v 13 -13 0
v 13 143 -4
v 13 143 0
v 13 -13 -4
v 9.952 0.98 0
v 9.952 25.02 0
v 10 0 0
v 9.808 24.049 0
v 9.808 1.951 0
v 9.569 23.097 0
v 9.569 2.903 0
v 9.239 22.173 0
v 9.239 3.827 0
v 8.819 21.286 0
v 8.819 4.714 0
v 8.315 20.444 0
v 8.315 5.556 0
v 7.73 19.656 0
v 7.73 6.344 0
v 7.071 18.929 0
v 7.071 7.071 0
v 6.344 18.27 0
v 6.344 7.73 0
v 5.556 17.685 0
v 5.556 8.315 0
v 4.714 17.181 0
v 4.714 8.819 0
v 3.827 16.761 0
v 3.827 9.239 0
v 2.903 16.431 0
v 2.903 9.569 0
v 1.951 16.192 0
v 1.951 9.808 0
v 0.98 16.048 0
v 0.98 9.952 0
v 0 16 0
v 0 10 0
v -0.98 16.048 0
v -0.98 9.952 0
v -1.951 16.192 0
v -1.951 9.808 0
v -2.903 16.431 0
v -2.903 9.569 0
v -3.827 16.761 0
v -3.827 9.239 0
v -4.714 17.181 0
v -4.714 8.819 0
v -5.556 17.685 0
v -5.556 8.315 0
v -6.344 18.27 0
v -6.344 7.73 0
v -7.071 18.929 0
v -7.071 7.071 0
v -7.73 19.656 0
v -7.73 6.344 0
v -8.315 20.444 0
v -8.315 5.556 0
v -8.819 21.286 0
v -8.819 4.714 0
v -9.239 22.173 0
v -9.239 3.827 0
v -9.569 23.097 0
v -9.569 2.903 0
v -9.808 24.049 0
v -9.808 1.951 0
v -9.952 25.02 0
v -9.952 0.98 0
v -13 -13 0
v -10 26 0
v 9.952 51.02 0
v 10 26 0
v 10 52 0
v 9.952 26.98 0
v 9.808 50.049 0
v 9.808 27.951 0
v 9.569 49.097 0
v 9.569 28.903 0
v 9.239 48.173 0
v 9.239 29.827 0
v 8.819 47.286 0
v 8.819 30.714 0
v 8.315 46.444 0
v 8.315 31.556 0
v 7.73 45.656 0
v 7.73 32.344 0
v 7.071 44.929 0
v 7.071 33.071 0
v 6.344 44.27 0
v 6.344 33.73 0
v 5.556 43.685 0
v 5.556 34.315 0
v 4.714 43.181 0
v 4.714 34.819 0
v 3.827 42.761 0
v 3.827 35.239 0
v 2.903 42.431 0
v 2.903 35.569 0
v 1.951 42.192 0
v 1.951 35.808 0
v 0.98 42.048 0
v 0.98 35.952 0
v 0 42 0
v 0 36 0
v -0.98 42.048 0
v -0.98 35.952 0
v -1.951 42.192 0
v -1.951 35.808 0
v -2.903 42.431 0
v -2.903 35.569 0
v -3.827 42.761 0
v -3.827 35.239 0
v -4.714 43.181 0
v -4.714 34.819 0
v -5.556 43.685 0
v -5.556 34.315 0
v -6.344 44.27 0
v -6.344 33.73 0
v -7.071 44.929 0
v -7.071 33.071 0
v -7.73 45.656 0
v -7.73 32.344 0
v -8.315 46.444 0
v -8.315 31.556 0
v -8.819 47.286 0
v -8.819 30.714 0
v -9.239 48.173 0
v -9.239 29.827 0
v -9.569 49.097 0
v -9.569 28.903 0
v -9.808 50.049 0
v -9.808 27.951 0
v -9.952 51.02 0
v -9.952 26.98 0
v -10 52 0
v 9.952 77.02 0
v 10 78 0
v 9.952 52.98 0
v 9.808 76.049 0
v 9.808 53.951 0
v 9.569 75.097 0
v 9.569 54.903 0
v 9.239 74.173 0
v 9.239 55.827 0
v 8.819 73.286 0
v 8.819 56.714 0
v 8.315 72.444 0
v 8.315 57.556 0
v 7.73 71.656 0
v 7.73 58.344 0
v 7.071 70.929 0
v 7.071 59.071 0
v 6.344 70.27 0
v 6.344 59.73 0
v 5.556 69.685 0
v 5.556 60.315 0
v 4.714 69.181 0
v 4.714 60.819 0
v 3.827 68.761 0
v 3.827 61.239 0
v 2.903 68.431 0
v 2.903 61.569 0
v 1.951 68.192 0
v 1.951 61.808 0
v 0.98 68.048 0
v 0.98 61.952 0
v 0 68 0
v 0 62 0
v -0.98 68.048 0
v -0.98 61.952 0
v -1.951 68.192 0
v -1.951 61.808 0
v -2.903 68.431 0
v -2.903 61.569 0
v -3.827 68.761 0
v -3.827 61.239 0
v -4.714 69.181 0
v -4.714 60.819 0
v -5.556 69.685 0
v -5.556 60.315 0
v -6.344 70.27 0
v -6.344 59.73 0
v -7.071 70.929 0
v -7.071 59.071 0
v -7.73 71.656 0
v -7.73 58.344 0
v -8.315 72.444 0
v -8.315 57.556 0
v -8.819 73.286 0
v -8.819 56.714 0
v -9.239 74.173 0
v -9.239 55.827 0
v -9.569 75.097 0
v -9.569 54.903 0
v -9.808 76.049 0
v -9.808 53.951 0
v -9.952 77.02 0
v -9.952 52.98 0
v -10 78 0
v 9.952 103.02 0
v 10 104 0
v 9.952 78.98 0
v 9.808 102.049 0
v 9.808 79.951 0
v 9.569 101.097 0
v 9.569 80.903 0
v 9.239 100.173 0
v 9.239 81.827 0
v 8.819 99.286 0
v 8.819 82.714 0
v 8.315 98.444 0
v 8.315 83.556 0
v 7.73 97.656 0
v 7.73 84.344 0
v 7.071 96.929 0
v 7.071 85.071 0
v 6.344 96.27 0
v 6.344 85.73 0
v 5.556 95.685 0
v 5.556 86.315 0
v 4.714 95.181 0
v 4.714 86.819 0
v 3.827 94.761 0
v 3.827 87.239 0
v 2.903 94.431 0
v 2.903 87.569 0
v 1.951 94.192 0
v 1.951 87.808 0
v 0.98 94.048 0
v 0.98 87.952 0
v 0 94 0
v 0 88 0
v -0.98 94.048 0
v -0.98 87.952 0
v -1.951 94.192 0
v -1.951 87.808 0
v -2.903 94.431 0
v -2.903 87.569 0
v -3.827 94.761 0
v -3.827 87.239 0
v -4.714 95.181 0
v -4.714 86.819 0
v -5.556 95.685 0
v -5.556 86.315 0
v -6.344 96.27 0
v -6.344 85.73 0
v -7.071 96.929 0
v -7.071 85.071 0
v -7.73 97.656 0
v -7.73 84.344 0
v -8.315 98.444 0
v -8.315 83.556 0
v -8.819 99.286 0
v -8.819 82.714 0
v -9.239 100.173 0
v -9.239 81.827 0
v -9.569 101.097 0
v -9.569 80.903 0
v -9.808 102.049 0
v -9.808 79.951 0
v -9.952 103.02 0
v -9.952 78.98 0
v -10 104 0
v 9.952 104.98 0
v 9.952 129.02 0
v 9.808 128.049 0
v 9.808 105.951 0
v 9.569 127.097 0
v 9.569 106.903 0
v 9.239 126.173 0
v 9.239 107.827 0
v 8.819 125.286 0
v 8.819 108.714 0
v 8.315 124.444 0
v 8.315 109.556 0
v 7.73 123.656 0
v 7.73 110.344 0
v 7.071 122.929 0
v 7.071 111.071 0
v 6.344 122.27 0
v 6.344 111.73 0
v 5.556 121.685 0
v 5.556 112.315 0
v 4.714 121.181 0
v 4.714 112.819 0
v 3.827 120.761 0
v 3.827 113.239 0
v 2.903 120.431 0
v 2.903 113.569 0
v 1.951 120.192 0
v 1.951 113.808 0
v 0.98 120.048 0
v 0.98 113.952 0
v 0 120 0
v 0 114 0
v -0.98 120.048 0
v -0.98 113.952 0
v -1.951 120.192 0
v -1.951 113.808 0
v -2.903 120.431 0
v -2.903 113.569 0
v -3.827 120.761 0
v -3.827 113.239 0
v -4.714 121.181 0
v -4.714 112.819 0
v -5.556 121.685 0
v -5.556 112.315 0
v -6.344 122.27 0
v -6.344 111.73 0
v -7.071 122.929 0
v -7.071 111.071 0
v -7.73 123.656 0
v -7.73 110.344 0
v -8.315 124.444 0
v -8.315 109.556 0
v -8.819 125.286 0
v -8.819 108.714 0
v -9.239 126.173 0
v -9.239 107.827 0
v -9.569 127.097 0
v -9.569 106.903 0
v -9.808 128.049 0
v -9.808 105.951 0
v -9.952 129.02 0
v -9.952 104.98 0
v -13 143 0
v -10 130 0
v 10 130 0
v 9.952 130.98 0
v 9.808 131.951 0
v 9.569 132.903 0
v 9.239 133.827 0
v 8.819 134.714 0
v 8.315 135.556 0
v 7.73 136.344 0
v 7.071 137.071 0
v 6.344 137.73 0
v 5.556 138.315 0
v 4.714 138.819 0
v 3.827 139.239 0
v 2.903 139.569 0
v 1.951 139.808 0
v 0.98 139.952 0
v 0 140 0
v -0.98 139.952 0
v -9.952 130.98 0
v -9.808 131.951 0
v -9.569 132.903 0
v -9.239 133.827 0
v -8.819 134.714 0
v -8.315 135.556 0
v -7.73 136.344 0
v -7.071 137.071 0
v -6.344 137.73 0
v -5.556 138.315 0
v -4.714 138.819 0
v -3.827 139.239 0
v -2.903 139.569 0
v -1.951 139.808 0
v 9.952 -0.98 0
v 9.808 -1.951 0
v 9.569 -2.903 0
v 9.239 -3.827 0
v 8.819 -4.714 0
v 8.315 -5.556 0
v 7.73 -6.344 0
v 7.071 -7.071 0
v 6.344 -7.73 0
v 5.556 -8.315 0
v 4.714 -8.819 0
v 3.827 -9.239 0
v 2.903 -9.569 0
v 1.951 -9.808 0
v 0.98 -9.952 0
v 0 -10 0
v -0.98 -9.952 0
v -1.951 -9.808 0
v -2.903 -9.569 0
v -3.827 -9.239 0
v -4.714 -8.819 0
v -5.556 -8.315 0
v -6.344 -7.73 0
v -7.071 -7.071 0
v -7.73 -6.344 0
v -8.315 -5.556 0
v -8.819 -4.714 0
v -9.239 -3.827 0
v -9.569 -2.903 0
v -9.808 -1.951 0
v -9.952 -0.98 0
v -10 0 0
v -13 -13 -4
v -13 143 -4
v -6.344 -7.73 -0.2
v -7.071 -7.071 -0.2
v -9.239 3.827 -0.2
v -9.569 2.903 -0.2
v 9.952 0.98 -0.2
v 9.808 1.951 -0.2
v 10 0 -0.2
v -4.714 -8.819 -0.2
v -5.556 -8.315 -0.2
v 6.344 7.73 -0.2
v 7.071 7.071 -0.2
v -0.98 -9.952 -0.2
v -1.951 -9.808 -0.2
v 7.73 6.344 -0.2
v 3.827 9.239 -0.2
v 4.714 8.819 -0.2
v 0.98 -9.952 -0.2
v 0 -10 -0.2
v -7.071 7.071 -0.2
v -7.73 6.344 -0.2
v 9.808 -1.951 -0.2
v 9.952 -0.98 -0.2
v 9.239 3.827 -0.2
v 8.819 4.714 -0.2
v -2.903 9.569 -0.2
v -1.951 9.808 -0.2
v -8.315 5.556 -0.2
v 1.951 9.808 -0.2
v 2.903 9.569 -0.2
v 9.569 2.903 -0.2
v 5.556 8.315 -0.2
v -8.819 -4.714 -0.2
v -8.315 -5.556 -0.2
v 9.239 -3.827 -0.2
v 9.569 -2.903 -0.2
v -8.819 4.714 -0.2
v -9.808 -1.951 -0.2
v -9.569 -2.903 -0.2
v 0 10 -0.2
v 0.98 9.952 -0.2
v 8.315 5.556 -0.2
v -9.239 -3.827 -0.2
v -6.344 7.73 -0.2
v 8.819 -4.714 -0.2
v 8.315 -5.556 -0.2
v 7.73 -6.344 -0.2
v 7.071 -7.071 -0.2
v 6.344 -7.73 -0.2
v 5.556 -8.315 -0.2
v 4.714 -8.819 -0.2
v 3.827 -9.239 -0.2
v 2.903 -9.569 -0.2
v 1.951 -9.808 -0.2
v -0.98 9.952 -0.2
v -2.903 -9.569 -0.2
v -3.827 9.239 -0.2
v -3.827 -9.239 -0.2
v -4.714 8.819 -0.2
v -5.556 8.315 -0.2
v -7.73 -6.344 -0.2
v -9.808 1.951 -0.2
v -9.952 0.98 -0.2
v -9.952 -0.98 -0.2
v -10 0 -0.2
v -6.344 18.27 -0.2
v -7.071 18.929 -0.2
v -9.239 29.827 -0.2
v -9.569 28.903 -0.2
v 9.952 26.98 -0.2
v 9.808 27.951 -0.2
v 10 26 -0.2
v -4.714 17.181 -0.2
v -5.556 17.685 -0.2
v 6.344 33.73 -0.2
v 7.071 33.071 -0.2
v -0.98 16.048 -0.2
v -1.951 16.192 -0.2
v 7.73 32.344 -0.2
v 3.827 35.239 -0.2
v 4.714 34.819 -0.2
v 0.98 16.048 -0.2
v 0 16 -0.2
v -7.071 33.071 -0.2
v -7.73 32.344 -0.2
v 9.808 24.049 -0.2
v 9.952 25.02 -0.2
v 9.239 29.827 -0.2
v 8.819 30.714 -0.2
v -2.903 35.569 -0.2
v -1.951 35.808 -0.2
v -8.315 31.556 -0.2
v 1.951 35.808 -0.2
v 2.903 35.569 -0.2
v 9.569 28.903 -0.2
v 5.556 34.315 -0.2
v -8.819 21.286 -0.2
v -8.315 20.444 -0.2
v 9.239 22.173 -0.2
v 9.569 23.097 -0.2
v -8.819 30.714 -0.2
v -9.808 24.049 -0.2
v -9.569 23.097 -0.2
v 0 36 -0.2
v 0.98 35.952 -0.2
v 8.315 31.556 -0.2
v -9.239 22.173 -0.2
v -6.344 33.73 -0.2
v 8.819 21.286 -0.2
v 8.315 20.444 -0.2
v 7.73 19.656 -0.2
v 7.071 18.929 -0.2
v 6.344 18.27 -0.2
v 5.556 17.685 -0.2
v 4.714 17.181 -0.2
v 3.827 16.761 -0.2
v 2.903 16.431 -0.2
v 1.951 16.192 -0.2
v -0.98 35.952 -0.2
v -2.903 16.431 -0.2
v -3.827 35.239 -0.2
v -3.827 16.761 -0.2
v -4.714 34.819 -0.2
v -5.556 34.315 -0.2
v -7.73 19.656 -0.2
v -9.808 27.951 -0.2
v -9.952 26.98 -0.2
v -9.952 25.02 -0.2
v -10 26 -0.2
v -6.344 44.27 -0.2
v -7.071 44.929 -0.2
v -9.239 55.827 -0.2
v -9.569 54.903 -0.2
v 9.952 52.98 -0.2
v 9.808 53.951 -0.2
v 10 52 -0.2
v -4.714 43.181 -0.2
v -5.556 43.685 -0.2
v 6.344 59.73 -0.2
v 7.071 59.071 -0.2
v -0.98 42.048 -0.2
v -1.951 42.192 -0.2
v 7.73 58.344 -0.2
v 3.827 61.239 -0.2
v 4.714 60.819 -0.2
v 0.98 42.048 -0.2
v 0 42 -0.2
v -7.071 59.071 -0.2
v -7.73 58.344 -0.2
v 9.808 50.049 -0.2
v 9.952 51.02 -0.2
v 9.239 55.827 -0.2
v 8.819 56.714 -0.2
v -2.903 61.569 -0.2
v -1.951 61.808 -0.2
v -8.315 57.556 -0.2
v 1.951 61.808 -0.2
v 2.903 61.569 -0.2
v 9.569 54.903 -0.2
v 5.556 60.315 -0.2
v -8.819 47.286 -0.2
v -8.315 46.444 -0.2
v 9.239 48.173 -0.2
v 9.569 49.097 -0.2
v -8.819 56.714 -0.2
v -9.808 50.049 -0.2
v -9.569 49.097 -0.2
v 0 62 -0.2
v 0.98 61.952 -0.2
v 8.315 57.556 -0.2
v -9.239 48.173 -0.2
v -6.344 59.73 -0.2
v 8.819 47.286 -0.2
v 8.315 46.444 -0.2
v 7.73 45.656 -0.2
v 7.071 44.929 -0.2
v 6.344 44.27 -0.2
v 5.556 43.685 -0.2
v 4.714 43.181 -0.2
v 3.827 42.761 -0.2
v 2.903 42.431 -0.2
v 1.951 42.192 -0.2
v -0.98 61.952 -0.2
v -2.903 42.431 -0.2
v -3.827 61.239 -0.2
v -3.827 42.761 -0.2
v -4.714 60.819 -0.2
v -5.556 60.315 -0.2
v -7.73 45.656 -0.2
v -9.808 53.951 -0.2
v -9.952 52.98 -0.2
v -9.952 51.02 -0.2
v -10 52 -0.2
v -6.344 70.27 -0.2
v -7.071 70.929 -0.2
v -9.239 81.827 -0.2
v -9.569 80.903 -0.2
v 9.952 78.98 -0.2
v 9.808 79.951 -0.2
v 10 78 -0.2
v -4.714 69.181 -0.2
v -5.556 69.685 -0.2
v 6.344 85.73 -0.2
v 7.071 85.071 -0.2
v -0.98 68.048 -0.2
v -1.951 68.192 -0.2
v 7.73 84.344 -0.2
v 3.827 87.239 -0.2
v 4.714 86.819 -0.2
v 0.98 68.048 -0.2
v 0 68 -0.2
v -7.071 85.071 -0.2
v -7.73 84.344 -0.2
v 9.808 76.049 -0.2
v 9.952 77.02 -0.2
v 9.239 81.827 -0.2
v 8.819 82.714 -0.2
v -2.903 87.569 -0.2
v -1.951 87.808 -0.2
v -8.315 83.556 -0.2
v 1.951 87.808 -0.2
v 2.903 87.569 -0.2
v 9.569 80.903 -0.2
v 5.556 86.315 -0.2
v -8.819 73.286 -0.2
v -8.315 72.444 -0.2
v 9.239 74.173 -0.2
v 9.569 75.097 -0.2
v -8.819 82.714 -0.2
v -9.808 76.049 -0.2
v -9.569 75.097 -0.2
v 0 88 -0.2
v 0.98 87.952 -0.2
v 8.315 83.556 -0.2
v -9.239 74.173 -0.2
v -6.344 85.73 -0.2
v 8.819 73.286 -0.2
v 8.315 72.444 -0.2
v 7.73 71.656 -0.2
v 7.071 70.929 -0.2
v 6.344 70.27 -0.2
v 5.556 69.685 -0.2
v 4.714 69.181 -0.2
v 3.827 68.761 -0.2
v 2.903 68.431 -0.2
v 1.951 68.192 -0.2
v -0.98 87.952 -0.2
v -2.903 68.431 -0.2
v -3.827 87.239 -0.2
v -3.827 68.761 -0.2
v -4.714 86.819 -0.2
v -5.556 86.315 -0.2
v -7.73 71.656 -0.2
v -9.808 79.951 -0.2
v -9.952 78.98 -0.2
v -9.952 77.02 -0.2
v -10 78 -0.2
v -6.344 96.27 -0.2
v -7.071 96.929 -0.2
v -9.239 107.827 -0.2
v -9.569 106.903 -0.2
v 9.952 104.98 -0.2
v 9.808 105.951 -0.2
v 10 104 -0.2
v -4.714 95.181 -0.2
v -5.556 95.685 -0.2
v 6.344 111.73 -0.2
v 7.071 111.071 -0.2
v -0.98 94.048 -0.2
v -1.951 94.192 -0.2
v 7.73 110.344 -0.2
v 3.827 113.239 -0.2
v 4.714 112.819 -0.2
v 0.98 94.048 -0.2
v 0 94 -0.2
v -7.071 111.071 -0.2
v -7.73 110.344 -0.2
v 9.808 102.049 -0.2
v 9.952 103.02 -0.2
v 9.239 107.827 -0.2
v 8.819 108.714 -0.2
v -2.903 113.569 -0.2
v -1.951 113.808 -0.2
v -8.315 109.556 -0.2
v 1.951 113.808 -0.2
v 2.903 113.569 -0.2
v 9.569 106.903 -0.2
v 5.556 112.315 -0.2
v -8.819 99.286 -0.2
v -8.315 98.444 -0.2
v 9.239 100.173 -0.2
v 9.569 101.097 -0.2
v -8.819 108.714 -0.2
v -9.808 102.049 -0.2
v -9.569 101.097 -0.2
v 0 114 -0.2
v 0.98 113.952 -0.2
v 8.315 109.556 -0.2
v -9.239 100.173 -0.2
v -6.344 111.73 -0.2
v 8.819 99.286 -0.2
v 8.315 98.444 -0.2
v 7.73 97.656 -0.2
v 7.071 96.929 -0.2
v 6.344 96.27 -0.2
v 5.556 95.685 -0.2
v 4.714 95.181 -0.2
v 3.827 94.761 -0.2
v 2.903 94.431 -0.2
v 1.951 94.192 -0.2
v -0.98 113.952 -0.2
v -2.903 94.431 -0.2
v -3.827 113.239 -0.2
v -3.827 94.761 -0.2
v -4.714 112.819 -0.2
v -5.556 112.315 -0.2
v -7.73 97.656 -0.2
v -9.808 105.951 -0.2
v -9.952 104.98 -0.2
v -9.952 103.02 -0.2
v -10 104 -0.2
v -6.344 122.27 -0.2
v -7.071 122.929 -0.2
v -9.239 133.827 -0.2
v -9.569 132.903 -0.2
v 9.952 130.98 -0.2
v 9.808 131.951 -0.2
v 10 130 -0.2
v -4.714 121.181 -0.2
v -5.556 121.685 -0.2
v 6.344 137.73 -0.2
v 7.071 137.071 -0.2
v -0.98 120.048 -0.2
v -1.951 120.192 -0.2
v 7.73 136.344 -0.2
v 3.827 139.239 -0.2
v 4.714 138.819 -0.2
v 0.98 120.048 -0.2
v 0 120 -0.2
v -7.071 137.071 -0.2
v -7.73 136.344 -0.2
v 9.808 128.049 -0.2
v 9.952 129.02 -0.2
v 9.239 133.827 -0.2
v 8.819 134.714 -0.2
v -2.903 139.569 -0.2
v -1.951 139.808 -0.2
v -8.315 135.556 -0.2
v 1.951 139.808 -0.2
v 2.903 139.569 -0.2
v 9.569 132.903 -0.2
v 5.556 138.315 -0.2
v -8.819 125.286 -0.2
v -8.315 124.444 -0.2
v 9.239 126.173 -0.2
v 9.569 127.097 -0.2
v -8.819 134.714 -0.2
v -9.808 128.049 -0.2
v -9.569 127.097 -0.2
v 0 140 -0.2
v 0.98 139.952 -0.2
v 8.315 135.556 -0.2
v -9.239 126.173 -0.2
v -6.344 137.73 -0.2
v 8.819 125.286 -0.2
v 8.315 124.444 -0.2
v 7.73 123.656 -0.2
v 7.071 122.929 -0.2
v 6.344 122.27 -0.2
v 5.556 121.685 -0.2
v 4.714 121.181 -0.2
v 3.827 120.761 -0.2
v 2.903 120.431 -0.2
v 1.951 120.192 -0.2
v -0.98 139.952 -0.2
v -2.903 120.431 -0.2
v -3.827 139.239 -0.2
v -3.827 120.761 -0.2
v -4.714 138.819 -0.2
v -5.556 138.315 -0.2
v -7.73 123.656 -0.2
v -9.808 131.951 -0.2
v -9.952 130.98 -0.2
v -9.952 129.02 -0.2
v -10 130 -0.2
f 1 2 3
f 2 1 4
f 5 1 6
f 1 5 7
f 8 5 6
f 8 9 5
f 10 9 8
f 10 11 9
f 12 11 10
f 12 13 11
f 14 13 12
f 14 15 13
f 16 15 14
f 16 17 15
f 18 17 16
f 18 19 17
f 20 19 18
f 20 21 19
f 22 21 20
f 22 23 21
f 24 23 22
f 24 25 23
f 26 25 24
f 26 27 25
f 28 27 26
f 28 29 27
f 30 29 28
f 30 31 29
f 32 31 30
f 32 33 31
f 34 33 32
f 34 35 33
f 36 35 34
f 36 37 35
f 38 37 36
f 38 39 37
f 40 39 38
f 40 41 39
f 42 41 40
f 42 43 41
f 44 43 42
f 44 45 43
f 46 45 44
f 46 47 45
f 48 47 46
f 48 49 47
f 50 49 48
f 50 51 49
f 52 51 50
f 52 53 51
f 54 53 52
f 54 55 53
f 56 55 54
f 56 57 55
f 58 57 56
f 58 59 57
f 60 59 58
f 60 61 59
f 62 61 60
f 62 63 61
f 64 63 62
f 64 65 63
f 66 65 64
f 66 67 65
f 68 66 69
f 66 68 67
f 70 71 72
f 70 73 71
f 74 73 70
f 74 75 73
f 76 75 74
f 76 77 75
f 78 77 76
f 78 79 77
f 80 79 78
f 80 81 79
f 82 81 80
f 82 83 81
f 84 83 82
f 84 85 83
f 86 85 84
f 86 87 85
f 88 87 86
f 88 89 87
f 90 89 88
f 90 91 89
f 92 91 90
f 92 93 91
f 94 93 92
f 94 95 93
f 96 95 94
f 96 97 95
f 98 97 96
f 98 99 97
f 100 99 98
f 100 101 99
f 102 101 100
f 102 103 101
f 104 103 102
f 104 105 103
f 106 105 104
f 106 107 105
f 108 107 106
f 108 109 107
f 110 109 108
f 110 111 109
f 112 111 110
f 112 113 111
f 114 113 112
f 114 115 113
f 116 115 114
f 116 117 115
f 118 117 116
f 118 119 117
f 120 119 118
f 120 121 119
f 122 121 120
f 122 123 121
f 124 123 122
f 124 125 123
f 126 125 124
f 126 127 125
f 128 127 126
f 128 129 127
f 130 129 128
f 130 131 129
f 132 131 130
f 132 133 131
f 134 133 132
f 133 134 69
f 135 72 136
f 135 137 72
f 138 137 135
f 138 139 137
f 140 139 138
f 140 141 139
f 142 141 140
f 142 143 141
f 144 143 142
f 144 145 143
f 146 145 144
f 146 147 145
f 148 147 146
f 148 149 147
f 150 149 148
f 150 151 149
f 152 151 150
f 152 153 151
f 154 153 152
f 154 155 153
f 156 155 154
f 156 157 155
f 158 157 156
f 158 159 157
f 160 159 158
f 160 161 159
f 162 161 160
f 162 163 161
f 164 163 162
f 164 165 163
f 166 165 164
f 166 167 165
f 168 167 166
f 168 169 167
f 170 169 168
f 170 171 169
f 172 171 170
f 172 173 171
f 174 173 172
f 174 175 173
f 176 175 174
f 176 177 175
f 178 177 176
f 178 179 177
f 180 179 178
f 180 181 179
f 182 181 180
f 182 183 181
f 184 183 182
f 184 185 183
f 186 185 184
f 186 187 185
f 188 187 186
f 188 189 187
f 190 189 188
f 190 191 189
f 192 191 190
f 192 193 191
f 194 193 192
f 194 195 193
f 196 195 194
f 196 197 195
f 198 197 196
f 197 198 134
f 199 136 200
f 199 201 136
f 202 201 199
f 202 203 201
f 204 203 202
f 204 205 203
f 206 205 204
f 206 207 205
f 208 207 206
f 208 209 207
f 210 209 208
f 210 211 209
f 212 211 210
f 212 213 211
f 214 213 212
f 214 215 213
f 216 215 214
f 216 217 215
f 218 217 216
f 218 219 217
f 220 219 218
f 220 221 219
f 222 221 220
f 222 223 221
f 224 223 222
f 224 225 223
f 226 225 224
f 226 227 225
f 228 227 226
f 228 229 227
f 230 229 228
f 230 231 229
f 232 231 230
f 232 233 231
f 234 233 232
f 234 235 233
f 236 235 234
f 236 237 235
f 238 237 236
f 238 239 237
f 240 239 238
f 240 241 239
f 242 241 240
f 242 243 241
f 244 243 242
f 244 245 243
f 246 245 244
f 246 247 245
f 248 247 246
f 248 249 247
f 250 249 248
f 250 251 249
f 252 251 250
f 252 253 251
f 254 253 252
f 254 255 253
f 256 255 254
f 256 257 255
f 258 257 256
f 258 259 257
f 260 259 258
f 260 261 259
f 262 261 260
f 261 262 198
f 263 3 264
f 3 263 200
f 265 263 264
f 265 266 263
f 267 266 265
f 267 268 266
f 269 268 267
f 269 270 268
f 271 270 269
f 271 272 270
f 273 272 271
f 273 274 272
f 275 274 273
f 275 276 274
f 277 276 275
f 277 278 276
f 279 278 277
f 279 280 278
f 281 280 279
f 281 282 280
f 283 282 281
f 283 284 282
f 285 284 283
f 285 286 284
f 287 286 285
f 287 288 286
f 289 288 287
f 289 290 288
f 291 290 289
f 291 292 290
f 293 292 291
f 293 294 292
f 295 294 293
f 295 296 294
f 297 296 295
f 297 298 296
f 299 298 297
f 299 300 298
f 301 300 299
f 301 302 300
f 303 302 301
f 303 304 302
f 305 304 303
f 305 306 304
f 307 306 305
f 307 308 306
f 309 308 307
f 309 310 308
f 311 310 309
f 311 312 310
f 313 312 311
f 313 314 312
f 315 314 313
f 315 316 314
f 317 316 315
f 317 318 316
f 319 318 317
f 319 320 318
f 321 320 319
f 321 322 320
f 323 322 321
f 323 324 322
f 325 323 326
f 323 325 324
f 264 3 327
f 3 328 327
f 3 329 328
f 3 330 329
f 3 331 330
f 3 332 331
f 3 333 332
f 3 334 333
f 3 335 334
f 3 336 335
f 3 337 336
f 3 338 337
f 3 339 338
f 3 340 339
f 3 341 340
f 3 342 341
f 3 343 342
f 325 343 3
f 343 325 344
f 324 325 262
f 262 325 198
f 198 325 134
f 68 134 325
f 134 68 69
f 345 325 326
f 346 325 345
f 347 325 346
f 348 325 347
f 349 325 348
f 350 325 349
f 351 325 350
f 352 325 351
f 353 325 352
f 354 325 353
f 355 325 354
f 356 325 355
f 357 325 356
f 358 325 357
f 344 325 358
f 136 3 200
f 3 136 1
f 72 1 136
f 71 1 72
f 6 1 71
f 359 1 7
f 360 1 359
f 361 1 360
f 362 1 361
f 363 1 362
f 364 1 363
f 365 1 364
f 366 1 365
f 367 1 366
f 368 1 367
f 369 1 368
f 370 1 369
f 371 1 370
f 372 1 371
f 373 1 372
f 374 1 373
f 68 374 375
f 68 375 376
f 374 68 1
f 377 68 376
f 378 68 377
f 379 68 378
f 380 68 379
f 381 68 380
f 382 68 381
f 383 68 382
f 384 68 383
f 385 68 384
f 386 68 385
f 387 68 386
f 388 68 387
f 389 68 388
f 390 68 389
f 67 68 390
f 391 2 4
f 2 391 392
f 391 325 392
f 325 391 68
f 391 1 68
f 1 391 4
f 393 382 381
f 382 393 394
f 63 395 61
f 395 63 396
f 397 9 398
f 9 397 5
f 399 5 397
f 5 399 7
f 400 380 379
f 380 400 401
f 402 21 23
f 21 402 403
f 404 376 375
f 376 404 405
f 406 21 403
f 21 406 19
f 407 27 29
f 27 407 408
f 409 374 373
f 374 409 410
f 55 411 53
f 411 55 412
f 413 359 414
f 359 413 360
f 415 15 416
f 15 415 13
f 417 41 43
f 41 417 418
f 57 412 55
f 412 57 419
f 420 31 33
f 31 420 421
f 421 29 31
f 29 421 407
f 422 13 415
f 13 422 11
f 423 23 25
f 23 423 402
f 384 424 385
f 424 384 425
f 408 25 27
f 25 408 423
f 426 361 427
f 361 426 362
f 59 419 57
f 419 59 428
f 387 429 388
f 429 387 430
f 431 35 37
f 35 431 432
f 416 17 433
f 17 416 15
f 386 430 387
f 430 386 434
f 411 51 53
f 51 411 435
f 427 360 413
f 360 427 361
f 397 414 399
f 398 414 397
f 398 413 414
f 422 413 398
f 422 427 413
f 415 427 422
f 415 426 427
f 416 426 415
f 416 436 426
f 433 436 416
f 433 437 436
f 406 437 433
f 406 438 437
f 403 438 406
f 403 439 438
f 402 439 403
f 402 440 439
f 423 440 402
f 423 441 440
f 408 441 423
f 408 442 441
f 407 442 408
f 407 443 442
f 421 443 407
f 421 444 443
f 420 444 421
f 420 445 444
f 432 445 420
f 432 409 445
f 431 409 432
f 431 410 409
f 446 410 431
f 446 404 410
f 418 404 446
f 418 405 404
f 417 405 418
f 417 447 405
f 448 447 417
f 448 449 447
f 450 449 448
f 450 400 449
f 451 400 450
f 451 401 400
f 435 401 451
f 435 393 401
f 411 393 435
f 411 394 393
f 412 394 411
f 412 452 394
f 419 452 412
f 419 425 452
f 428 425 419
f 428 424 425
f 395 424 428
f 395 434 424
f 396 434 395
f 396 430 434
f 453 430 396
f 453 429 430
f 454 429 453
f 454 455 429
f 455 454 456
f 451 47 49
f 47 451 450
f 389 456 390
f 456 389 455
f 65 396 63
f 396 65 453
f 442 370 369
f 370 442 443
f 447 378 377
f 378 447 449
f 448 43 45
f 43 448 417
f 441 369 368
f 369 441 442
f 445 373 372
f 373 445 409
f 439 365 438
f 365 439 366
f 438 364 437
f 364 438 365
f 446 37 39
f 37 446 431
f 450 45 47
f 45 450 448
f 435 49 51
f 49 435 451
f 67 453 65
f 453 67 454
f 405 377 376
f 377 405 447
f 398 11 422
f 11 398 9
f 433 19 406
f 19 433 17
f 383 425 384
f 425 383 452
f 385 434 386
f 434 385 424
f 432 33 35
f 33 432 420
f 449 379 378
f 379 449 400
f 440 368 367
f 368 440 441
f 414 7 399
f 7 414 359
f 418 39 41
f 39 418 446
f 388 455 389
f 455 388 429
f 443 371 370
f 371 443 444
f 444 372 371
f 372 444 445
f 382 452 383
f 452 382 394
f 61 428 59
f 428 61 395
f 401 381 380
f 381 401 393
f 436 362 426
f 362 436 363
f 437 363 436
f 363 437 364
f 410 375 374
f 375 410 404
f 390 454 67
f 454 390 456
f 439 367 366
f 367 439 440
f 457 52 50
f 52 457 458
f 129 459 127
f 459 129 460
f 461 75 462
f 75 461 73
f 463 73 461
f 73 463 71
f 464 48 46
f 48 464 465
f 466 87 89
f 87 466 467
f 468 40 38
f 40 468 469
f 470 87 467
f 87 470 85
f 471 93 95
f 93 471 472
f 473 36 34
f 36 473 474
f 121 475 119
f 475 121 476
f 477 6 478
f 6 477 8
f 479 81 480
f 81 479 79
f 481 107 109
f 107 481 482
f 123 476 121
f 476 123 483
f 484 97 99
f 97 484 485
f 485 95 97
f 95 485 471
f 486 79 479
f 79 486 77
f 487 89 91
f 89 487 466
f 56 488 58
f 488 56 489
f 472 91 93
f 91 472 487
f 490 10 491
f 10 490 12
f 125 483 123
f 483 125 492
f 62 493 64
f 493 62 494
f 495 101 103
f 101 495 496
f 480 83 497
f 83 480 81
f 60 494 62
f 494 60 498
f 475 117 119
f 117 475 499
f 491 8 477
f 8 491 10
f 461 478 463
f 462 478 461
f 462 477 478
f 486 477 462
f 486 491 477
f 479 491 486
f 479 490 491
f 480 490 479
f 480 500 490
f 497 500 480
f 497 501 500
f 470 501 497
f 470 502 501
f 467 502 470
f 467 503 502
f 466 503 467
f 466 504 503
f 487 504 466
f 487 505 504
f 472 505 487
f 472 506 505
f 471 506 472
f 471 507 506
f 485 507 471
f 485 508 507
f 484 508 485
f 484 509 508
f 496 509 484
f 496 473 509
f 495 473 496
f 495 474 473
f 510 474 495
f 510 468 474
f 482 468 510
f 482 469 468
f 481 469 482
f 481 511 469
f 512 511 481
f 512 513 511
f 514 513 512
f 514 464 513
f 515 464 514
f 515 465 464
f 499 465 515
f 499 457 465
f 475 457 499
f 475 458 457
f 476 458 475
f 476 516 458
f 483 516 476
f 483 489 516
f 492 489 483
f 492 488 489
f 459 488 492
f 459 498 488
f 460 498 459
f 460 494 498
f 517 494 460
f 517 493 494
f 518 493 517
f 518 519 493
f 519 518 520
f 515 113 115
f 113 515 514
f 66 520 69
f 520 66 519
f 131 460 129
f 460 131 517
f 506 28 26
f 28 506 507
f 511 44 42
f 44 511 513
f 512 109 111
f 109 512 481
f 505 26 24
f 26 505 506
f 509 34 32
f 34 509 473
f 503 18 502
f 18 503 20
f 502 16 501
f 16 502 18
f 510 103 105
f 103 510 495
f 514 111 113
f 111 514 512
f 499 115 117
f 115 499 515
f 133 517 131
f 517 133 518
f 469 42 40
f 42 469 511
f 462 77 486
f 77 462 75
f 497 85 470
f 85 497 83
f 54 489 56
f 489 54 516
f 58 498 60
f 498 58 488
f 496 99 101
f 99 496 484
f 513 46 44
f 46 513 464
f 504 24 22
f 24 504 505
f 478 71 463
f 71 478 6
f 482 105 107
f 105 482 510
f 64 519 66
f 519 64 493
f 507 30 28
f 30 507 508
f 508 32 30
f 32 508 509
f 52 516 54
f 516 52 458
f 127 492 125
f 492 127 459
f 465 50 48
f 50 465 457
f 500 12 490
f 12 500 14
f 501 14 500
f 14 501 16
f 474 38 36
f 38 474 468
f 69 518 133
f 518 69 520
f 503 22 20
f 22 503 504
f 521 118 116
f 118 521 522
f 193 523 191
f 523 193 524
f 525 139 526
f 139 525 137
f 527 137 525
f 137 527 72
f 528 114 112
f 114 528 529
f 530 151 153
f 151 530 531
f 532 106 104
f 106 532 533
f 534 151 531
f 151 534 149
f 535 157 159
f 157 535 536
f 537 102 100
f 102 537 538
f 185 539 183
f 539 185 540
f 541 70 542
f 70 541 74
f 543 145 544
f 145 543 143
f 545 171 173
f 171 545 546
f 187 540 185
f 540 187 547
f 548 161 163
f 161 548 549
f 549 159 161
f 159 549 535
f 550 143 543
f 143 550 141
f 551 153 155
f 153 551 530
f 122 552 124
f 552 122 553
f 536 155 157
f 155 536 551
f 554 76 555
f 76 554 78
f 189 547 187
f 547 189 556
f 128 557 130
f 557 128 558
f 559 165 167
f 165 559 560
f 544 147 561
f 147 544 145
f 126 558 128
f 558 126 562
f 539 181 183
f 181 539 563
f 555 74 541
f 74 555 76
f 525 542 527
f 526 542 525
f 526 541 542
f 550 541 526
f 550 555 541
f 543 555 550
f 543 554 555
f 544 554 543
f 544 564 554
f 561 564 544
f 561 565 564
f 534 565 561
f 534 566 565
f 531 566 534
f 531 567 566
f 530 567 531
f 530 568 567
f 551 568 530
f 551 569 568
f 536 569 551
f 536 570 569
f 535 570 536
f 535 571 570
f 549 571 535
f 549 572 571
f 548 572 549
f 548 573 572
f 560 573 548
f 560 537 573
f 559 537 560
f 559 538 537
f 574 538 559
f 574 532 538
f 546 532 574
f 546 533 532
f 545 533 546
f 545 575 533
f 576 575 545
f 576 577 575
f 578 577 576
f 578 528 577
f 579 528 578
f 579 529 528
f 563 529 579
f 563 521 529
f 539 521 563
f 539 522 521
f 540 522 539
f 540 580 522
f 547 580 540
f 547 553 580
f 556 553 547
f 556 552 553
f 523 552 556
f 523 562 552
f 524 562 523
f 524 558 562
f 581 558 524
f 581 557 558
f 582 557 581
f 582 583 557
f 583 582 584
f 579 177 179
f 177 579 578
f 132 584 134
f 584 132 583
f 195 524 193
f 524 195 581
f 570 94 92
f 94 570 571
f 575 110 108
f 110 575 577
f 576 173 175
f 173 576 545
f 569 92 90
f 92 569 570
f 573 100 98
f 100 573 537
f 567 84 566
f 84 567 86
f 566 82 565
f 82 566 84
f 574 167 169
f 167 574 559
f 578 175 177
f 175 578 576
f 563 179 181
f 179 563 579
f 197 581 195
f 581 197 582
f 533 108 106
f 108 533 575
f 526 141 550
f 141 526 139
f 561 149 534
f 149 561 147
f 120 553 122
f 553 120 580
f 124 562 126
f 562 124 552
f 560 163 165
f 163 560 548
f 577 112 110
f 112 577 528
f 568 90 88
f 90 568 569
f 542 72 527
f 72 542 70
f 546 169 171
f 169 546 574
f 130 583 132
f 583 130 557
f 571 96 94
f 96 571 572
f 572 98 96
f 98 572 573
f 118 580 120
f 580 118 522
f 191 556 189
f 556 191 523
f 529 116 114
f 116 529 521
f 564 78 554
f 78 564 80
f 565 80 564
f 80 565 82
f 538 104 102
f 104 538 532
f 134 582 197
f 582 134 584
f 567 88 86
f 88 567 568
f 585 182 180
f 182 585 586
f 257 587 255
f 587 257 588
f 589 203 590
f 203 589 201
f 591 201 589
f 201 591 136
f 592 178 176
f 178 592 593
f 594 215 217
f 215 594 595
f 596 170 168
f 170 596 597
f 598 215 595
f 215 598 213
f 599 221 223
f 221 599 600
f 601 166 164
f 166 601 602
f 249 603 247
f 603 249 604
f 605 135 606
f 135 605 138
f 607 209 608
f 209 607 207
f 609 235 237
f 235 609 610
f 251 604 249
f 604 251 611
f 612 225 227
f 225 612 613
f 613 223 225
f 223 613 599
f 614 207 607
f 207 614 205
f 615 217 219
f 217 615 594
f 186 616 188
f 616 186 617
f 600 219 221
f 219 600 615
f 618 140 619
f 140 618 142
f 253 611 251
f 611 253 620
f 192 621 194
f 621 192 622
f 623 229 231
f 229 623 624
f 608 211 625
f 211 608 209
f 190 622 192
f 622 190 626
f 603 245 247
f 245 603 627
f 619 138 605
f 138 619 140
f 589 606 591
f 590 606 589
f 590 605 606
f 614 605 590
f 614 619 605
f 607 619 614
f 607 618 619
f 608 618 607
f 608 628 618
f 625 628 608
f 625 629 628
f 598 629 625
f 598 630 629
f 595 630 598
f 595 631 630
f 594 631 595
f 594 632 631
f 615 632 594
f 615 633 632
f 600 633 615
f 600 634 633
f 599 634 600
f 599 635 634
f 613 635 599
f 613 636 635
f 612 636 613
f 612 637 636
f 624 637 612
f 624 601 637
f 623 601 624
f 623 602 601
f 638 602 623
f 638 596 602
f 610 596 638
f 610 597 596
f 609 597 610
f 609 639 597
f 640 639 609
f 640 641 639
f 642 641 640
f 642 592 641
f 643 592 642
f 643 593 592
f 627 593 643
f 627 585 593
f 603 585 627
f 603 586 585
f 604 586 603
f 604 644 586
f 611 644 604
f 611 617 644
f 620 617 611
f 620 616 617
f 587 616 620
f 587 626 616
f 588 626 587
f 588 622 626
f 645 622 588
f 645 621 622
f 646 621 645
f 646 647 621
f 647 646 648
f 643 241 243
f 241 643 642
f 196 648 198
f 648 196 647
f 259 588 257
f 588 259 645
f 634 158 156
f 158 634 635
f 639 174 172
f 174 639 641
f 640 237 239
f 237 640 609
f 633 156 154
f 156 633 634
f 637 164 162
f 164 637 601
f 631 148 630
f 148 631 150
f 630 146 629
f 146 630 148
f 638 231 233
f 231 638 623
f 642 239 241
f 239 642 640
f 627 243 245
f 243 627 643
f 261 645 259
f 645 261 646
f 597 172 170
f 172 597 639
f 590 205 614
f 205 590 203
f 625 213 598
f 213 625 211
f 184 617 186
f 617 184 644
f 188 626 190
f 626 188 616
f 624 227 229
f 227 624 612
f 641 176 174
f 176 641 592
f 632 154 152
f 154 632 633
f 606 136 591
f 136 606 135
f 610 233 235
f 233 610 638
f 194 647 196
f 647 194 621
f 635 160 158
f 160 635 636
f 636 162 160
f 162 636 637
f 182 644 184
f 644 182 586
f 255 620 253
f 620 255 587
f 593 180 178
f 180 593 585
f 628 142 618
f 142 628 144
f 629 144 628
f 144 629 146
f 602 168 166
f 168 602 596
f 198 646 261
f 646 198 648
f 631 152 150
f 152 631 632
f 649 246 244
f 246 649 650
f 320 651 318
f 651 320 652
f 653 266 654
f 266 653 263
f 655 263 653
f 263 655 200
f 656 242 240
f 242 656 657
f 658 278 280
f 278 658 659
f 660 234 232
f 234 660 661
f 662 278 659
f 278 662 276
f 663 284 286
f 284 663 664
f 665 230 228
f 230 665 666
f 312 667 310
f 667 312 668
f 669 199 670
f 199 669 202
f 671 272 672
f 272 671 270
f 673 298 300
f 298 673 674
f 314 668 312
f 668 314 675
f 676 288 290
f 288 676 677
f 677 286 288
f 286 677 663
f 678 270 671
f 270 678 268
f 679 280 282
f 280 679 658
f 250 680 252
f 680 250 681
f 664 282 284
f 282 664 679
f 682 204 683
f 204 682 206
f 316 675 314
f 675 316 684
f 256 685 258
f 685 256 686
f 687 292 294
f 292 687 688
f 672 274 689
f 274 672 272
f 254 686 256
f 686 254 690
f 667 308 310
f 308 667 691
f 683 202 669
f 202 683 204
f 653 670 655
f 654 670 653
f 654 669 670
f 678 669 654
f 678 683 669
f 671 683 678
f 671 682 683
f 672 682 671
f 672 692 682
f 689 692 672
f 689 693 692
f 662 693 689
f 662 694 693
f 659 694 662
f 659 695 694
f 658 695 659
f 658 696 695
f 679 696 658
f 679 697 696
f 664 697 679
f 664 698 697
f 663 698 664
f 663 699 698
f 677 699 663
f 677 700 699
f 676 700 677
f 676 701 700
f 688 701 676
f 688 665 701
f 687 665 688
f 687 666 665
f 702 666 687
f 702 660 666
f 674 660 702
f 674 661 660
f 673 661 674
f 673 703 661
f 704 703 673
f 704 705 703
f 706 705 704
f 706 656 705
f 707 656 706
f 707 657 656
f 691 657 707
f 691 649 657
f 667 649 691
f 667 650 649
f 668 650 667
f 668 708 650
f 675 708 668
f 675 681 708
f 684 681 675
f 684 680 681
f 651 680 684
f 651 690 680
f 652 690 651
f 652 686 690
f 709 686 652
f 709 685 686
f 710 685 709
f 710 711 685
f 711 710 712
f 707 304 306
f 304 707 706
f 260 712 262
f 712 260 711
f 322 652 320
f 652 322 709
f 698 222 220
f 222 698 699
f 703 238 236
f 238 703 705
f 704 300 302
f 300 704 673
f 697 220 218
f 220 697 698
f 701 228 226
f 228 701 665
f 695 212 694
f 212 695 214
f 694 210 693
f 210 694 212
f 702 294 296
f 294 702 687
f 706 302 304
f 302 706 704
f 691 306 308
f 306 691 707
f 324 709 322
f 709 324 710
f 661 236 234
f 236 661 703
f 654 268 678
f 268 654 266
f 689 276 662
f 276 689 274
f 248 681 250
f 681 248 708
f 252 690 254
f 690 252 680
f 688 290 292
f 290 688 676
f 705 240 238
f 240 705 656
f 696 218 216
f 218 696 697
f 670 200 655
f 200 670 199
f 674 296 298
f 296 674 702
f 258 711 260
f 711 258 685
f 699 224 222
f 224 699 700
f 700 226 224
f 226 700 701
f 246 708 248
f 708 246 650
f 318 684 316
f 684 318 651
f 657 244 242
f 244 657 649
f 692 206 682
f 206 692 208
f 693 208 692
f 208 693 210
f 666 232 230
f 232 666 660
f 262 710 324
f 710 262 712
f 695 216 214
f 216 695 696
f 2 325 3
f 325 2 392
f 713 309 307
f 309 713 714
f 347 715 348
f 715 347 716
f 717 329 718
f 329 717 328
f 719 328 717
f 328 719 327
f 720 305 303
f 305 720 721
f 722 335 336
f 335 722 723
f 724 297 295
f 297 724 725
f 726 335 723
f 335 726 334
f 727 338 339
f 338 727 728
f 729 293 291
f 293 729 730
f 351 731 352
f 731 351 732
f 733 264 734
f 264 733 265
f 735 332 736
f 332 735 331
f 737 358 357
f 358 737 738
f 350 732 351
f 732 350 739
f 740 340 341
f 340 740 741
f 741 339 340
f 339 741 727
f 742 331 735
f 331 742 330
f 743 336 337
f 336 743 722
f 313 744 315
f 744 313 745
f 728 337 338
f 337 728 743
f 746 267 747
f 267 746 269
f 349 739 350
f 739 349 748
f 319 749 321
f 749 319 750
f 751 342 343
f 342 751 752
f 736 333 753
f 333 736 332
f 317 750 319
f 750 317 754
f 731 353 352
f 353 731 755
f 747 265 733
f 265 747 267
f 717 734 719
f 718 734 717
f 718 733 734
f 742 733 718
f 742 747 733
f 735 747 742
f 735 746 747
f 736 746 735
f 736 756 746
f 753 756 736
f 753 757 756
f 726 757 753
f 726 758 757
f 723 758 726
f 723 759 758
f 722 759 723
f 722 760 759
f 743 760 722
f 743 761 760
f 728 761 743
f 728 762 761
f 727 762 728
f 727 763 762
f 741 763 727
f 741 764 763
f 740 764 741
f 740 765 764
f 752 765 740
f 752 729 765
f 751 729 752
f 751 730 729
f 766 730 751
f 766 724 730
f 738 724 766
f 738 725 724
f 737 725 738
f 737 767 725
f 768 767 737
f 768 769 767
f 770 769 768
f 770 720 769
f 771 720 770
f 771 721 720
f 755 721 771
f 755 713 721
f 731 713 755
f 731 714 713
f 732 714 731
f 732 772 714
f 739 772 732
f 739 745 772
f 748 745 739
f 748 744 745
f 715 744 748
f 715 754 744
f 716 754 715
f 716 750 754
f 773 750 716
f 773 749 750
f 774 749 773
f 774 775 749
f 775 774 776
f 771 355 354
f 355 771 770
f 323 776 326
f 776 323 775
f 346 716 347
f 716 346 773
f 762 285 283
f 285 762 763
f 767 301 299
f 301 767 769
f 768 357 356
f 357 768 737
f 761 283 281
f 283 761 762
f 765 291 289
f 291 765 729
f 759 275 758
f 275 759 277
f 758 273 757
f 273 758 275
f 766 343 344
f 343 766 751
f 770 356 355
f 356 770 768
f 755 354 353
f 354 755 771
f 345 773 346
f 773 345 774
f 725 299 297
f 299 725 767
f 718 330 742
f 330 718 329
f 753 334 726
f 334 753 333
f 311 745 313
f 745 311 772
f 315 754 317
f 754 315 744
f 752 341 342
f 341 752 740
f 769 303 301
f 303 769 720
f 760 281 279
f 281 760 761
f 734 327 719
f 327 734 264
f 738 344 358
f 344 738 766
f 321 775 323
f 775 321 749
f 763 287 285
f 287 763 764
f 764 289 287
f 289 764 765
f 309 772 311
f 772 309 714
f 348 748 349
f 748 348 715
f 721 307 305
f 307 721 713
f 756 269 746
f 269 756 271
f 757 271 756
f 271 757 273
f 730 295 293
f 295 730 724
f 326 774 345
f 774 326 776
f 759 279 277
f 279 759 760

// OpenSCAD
// Generated by SolidPython 1.1.3 on 2024-01-02 15:48:13


union() {
	translate(v = [0, 0, 0.0000000000]) {
		difference() {
			translate(v = [0, 0, -2.0000000000]) {
				cube(center = true, size = [26, 26, 4]);
			}
			translate(v = [0, 0, -0.1000000000]) {
				cylinder($fn = 64, center = true, h = 0.2000000000, r = 10.0000000000);
			}
		}
	}
	translate(v = [0, 26, 0.0000000000]) {
		difference() {
			translate(v = [0, 0, -2.0000000000]) {
				cube(center = true, size = [26, 26, 4]);
			}
			translate(v = [0, 0, -0.1000000000]) {
				cylinder($fn = 64, center = true, h = 0.2000000000, r = 10.0000000000);
			}
		}
	}
	translate(v = [0, 52, 0.0000000000]) {
		difference() {
			translate(v = [0, 0, -2.0000000000]) {
				cube(center = true, size = [26, 26, 4]);
			}
			translate(v = [0, 0, -0.1000000000]) {
				cylinder($fn = 64, center = true, h = 0.2000000000, r = 10.0000000000);
			}
		}
	}
	translate(v = [0, 78, 0.0000000000]) {
		difference() {
			translate(v = [0, 0, -2.0000000000]) {
				cube(center = true, size = [26, 26, 4]);
			}
			translate(v = [0, 0, -0.1000000000]) {
				cylinder($fn = 64, center = true, h = 0.2000000000, r = 10.0000000000);
			}
		}
	}
	translate(v = [0, 104, 0.0000000000]) {
		difference() {
			translate(v = [0, 0, -2.0000000000]) {
				cube(center = true, size = [26, 26, 4]);
			}
			translate(v = [0, 0, -0.1000000000]) {
				cylinder($fn = 64, center = true, h = 0.2000000000, r = 10.0000000000);
			}
		}
	}
	translate(v = [0, 130, 0.0000000000]) {
		difference() {
			translate(v = [0, 0, -2.0000000000]) {
				cube(center = true, size = [26, 26, 4]);
			}
			translate(v = [0, 0, -0.1000000000]) {
				cylinder($fn = 64, center = true, h = 0.2000000000, r = 10.0000000000);
			}
		}
	}
}
/***********************************************
*********      SolidPython code:      **********
************************************************
 
import solid
import os
import os.path as osp
from make_device import make_unit_array

def save_model(model,base_path,base_name):
    if not osp.exists(base_path):
        os.makedirs(base_path)
    scad_path=osp.join(base_path,base_name+".scad")
    solid.scad_render_to_file(model,osp.join(scad_path))


def create_rack(item_diameter,item_thickness,rack_height,base_name,base_path,item_diameter_extra=0,item_thickness_extra=0,rack_size_extra=0,grid_size=[1,1]):
    holder_size=(item_diameter+item_diameter_extra+rack_size_extra,item_diameter+item_diameter_extra+rack_size_extra)
    dims = [*holder_size, 0]
    height= item_thickness+item_thickness_extra
    radius=(item_diameter+item_diameter_extra)/2.0
    hole = solid.cylinder(r=radius, h=height, segments=64, center = True)
    hole = solid.translate([0,0,-height/2.0])(hole)
    holder = solid.cube((*holder_size,rack_height), center = True)
    holder = solid.translate([0,0,-rack_height/2.0])(holder)
    holder = solid.difference()(holder,hole)
    holder=make_unit_array(holder,dims,grid_size)
    save_model(holder,base_path,base_name)

version="v1"
base_path="./designs/plasma_racks/4mm_well_0.5inch_diam_device_"+version+"/"
#coverslip glass holder
item_diameter=18
item_diameter_extra=2
item_thickness=0.16
item_thickness_extra=0.04
rack_height=4
rack_size_extra=6
base_name="18CIR-1_rack_"+version
grid_size=[1,6]
create_rack(item_diameter,item_thickness,rack_height,base_name,base_path,item_diameter_extra=item_diameter_extra,item_thickness_extra=item_thickness_extra,rack_size_extra=rack_size_extra,grid_size=grid_size)

#0.5" diam device holder
item_diameter=12.7
item_diameter_extra=2
item_thickness=3
item_thickness_extra=0
rack_height=6
rack_size_extra=6
base_name="0.5inch_4mm_device_rack_"+version
grid_size=[1,6]
create_rack(item_diameter,item_thickness,rack_height,base_name,base_path,item_diameter_extra=item_diameter_extra,item_thickness_extra=item_thickness_extra,rack_size_extra=rack_size_extra,grid_size=grid_size)

 
 
************************************************/
